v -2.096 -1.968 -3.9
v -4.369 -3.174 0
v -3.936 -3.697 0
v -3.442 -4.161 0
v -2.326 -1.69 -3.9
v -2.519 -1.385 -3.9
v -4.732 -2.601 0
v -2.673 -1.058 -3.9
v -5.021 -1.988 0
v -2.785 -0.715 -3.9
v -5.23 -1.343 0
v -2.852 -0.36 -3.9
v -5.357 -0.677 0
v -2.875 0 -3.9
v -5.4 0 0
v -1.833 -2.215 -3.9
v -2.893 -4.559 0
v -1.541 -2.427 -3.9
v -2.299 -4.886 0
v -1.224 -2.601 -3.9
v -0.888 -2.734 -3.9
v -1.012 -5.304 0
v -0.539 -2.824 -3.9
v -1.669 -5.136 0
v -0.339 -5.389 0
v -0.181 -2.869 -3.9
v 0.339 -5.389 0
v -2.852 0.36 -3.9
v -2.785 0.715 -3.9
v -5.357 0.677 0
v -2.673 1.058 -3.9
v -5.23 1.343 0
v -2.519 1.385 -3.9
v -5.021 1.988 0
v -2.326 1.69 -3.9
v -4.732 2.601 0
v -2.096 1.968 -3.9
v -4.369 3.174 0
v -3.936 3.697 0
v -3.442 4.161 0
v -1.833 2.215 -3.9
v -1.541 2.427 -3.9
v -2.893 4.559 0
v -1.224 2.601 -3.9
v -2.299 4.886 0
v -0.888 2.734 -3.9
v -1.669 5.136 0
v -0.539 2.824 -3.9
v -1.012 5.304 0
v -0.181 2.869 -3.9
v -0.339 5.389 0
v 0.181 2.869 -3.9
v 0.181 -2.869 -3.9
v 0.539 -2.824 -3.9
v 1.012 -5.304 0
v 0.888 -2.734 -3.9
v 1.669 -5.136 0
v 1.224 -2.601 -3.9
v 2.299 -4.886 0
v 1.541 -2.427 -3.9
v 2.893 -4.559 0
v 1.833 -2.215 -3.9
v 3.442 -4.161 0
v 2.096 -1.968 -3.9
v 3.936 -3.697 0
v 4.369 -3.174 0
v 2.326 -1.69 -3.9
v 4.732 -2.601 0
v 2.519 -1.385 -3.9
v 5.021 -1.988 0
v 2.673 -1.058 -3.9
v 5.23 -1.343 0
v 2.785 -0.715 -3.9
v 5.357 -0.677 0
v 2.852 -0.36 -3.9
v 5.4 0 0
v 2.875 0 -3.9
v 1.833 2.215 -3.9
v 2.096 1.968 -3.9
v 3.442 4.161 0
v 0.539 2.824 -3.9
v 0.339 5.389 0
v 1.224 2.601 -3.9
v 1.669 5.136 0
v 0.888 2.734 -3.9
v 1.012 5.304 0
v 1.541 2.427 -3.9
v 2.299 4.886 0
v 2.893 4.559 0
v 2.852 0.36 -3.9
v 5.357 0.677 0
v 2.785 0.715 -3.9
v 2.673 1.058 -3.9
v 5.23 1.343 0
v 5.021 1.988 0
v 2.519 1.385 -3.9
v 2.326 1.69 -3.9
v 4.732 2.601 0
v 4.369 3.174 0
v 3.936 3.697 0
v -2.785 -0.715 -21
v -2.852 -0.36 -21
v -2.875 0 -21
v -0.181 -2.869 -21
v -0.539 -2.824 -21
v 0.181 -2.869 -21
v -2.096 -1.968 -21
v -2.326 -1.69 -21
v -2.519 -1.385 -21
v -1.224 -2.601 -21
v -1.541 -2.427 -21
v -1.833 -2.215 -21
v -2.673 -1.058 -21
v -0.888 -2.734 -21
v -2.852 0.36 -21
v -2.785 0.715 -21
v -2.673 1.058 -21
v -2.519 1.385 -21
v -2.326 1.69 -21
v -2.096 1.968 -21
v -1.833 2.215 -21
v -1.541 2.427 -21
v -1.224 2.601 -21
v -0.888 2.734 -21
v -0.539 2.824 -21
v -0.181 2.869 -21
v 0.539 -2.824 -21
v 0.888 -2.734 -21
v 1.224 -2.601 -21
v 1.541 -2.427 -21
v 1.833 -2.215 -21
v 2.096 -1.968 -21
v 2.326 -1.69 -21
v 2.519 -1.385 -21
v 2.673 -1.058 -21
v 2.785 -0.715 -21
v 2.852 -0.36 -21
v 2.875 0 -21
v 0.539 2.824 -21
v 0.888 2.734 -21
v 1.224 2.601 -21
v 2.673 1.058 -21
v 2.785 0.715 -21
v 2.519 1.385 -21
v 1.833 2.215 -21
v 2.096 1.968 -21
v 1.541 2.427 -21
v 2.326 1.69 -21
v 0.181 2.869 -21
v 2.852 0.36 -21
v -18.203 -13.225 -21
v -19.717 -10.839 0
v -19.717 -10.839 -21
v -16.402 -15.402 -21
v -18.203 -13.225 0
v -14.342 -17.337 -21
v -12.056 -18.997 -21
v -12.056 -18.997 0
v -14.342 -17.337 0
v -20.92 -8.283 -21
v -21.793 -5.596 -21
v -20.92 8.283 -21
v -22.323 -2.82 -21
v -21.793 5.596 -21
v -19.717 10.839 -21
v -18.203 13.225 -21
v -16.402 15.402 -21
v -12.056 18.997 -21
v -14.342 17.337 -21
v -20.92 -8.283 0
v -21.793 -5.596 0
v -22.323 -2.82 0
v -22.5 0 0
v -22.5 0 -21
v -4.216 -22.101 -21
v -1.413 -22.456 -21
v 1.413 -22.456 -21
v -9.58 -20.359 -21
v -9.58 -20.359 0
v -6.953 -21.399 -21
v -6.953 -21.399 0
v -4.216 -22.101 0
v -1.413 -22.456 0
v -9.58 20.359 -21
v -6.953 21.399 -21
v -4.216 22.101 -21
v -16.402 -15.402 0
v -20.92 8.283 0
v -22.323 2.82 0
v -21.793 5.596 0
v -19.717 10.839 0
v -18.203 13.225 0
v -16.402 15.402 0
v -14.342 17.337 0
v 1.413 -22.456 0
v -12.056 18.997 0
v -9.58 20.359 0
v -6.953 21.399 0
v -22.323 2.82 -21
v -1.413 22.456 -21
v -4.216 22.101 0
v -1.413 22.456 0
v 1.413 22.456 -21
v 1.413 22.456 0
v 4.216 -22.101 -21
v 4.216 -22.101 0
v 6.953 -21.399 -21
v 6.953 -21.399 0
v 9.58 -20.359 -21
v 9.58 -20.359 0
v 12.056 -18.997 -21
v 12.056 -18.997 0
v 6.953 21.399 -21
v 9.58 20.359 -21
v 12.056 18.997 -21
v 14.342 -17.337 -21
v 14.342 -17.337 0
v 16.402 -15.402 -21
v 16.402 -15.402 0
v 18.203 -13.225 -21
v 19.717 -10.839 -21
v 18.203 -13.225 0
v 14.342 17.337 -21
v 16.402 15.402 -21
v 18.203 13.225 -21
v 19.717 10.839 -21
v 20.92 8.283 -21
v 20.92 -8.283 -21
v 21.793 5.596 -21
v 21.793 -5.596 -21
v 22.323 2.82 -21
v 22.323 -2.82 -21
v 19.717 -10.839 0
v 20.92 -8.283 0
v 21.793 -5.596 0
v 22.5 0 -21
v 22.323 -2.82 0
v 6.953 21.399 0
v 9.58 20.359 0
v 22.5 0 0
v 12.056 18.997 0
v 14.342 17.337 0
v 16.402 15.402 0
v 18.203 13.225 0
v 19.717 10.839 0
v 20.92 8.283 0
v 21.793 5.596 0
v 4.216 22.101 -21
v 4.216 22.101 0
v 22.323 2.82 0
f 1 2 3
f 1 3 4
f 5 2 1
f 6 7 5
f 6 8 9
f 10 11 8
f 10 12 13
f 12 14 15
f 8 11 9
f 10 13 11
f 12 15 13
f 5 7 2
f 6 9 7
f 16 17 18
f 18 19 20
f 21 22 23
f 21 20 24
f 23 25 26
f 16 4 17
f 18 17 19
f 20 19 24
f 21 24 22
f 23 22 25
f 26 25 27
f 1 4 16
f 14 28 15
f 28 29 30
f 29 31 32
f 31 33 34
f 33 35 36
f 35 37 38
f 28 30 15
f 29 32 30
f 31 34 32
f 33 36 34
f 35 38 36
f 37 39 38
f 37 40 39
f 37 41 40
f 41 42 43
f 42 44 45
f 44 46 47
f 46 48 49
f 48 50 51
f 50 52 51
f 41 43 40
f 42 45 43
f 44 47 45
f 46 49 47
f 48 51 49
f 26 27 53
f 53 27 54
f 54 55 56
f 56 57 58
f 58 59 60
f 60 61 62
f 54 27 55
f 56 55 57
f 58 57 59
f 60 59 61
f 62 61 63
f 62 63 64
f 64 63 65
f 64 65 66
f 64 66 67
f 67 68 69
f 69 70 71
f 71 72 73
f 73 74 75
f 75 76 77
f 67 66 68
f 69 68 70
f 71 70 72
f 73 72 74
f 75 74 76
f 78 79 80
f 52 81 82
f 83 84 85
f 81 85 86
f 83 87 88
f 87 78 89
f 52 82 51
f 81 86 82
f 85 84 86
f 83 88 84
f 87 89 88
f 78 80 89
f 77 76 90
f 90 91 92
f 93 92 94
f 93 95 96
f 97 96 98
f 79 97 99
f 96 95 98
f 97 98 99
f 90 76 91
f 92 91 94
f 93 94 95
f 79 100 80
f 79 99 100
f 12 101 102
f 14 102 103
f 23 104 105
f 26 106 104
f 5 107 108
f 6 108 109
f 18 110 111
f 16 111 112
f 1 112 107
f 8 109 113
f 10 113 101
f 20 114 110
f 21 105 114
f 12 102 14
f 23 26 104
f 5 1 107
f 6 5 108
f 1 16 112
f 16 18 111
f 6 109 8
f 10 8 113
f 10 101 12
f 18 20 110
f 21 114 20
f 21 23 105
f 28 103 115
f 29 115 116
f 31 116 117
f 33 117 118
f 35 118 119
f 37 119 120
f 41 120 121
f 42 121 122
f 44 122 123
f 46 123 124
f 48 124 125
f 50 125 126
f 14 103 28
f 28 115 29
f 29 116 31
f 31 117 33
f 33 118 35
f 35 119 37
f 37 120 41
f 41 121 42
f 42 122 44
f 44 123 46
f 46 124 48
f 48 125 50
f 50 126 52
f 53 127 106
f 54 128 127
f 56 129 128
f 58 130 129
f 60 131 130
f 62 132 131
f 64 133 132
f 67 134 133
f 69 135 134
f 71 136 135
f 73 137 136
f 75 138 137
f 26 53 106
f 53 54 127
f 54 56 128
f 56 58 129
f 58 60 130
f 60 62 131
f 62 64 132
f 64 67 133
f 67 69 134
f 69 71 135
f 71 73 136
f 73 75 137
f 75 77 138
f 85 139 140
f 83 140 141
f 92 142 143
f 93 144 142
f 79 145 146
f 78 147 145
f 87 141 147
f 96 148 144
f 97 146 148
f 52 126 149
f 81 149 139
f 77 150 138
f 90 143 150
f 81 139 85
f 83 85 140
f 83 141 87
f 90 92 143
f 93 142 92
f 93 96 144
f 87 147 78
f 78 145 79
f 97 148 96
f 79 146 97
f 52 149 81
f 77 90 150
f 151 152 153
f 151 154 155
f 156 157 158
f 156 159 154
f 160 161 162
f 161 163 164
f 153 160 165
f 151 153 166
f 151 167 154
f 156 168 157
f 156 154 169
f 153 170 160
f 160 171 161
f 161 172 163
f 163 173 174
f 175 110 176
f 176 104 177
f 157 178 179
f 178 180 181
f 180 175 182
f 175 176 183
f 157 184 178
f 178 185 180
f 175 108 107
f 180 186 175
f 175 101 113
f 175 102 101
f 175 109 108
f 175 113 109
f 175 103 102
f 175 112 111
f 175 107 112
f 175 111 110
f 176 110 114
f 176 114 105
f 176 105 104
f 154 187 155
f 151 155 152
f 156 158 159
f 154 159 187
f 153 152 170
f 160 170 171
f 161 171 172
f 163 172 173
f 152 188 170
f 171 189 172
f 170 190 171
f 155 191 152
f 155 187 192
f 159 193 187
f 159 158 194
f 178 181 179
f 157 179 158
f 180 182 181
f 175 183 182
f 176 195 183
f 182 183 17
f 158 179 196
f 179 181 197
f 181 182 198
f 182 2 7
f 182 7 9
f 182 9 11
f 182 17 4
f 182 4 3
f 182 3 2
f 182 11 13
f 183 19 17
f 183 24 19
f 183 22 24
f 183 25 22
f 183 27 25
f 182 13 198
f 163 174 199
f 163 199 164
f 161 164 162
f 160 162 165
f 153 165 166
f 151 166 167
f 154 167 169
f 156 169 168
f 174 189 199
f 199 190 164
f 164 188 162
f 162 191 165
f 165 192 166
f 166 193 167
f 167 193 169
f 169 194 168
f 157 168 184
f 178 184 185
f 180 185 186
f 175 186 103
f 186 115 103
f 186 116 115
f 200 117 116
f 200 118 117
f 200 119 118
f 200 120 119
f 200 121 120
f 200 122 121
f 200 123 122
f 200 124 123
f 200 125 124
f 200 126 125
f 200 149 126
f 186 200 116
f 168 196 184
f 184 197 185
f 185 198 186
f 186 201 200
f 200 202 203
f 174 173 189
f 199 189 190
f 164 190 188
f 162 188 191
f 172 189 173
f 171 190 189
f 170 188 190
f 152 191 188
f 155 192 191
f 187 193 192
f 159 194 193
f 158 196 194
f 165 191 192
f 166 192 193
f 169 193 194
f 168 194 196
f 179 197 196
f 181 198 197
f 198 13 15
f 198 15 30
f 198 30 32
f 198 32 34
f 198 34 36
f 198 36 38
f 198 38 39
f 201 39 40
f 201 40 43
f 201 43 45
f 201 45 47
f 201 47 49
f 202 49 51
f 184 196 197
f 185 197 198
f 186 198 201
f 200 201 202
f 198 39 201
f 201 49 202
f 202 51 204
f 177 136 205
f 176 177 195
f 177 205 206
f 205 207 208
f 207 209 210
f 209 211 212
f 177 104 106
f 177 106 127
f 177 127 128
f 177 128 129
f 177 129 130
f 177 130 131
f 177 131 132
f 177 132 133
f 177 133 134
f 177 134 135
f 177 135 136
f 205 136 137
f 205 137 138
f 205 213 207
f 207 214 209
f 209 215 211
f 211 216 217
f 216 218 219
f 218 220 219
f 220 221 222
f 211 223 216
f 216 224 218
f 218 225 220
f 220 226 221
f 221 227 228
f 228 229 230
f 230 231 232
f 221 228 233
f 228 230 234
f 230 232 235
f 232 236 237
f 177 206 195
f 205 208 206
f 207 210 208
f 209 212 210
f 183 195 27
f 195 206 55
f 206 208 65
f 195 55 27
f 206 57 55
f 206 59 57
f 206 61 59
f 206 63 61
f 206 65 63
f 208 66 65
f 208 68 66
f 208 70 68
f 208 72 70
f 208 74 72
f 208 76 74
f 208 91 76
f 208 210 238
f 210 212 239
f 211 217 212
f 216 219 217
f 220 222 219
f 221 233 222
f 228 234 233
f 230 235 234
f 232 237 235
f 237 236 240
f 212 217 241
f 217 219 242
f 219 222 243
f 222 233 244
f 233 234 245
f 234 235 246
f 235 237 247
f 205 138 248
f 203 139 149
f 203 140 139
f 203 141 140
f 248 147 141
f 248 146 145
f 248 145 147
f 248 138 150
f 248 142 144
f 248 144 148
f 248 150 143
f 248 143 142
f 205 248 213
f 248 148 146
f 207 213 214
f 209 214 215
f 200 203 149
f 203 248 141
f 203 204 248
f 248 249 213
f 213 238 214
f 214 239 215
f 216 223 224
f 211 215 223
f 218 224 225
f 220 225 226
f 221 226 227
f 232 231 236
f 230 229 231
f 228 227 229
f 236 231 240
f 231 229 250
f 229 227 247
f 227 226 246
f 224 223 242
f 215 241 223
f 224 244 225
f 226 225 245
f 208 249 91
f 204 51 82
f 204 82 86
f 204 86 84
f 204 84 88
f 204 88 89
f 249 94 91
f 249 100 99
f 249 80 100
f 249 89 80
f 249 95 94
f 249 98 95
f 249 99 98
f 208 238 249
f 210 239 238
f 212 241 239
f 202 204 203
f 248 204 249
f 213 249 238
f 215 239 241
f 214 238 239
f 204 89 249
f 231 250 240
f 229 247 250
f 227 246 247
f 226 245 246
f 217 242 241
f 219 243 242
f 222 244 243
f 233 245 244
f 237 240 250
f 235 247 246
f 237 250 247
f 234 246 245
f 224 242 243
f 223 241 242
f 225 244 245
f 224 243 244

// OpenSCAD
$fn = 50;

difference() {
	union() {
		translate(v = [0, 0, -21.0]) {
			cylinder(h = 21, r = 22.5);
		}
	}
	union() {
		translate(v = [0, 0, 0]) {
			rotate(a = [0, 0, 0]) {
				difference() {
					union() {
						translate(v = [0, 0, -24.0]) {
							cylinder(h = 24, r = 2.6);
						}
						translate(v = [0, 0, -3.9]) {
							cylinder(h = 3.9, r1 = 2.875, r2 = 5.4);
						}
						translate(v = [0, 0, -24.0]) {
							cylinder(h = 24, r = 2.875);
						}
						translate(v = [0, 0, -24.0]) {
							cylinder(h = 24, r = 2.6);
						}
					}
					union();
				}
			}
		}
	}
}
